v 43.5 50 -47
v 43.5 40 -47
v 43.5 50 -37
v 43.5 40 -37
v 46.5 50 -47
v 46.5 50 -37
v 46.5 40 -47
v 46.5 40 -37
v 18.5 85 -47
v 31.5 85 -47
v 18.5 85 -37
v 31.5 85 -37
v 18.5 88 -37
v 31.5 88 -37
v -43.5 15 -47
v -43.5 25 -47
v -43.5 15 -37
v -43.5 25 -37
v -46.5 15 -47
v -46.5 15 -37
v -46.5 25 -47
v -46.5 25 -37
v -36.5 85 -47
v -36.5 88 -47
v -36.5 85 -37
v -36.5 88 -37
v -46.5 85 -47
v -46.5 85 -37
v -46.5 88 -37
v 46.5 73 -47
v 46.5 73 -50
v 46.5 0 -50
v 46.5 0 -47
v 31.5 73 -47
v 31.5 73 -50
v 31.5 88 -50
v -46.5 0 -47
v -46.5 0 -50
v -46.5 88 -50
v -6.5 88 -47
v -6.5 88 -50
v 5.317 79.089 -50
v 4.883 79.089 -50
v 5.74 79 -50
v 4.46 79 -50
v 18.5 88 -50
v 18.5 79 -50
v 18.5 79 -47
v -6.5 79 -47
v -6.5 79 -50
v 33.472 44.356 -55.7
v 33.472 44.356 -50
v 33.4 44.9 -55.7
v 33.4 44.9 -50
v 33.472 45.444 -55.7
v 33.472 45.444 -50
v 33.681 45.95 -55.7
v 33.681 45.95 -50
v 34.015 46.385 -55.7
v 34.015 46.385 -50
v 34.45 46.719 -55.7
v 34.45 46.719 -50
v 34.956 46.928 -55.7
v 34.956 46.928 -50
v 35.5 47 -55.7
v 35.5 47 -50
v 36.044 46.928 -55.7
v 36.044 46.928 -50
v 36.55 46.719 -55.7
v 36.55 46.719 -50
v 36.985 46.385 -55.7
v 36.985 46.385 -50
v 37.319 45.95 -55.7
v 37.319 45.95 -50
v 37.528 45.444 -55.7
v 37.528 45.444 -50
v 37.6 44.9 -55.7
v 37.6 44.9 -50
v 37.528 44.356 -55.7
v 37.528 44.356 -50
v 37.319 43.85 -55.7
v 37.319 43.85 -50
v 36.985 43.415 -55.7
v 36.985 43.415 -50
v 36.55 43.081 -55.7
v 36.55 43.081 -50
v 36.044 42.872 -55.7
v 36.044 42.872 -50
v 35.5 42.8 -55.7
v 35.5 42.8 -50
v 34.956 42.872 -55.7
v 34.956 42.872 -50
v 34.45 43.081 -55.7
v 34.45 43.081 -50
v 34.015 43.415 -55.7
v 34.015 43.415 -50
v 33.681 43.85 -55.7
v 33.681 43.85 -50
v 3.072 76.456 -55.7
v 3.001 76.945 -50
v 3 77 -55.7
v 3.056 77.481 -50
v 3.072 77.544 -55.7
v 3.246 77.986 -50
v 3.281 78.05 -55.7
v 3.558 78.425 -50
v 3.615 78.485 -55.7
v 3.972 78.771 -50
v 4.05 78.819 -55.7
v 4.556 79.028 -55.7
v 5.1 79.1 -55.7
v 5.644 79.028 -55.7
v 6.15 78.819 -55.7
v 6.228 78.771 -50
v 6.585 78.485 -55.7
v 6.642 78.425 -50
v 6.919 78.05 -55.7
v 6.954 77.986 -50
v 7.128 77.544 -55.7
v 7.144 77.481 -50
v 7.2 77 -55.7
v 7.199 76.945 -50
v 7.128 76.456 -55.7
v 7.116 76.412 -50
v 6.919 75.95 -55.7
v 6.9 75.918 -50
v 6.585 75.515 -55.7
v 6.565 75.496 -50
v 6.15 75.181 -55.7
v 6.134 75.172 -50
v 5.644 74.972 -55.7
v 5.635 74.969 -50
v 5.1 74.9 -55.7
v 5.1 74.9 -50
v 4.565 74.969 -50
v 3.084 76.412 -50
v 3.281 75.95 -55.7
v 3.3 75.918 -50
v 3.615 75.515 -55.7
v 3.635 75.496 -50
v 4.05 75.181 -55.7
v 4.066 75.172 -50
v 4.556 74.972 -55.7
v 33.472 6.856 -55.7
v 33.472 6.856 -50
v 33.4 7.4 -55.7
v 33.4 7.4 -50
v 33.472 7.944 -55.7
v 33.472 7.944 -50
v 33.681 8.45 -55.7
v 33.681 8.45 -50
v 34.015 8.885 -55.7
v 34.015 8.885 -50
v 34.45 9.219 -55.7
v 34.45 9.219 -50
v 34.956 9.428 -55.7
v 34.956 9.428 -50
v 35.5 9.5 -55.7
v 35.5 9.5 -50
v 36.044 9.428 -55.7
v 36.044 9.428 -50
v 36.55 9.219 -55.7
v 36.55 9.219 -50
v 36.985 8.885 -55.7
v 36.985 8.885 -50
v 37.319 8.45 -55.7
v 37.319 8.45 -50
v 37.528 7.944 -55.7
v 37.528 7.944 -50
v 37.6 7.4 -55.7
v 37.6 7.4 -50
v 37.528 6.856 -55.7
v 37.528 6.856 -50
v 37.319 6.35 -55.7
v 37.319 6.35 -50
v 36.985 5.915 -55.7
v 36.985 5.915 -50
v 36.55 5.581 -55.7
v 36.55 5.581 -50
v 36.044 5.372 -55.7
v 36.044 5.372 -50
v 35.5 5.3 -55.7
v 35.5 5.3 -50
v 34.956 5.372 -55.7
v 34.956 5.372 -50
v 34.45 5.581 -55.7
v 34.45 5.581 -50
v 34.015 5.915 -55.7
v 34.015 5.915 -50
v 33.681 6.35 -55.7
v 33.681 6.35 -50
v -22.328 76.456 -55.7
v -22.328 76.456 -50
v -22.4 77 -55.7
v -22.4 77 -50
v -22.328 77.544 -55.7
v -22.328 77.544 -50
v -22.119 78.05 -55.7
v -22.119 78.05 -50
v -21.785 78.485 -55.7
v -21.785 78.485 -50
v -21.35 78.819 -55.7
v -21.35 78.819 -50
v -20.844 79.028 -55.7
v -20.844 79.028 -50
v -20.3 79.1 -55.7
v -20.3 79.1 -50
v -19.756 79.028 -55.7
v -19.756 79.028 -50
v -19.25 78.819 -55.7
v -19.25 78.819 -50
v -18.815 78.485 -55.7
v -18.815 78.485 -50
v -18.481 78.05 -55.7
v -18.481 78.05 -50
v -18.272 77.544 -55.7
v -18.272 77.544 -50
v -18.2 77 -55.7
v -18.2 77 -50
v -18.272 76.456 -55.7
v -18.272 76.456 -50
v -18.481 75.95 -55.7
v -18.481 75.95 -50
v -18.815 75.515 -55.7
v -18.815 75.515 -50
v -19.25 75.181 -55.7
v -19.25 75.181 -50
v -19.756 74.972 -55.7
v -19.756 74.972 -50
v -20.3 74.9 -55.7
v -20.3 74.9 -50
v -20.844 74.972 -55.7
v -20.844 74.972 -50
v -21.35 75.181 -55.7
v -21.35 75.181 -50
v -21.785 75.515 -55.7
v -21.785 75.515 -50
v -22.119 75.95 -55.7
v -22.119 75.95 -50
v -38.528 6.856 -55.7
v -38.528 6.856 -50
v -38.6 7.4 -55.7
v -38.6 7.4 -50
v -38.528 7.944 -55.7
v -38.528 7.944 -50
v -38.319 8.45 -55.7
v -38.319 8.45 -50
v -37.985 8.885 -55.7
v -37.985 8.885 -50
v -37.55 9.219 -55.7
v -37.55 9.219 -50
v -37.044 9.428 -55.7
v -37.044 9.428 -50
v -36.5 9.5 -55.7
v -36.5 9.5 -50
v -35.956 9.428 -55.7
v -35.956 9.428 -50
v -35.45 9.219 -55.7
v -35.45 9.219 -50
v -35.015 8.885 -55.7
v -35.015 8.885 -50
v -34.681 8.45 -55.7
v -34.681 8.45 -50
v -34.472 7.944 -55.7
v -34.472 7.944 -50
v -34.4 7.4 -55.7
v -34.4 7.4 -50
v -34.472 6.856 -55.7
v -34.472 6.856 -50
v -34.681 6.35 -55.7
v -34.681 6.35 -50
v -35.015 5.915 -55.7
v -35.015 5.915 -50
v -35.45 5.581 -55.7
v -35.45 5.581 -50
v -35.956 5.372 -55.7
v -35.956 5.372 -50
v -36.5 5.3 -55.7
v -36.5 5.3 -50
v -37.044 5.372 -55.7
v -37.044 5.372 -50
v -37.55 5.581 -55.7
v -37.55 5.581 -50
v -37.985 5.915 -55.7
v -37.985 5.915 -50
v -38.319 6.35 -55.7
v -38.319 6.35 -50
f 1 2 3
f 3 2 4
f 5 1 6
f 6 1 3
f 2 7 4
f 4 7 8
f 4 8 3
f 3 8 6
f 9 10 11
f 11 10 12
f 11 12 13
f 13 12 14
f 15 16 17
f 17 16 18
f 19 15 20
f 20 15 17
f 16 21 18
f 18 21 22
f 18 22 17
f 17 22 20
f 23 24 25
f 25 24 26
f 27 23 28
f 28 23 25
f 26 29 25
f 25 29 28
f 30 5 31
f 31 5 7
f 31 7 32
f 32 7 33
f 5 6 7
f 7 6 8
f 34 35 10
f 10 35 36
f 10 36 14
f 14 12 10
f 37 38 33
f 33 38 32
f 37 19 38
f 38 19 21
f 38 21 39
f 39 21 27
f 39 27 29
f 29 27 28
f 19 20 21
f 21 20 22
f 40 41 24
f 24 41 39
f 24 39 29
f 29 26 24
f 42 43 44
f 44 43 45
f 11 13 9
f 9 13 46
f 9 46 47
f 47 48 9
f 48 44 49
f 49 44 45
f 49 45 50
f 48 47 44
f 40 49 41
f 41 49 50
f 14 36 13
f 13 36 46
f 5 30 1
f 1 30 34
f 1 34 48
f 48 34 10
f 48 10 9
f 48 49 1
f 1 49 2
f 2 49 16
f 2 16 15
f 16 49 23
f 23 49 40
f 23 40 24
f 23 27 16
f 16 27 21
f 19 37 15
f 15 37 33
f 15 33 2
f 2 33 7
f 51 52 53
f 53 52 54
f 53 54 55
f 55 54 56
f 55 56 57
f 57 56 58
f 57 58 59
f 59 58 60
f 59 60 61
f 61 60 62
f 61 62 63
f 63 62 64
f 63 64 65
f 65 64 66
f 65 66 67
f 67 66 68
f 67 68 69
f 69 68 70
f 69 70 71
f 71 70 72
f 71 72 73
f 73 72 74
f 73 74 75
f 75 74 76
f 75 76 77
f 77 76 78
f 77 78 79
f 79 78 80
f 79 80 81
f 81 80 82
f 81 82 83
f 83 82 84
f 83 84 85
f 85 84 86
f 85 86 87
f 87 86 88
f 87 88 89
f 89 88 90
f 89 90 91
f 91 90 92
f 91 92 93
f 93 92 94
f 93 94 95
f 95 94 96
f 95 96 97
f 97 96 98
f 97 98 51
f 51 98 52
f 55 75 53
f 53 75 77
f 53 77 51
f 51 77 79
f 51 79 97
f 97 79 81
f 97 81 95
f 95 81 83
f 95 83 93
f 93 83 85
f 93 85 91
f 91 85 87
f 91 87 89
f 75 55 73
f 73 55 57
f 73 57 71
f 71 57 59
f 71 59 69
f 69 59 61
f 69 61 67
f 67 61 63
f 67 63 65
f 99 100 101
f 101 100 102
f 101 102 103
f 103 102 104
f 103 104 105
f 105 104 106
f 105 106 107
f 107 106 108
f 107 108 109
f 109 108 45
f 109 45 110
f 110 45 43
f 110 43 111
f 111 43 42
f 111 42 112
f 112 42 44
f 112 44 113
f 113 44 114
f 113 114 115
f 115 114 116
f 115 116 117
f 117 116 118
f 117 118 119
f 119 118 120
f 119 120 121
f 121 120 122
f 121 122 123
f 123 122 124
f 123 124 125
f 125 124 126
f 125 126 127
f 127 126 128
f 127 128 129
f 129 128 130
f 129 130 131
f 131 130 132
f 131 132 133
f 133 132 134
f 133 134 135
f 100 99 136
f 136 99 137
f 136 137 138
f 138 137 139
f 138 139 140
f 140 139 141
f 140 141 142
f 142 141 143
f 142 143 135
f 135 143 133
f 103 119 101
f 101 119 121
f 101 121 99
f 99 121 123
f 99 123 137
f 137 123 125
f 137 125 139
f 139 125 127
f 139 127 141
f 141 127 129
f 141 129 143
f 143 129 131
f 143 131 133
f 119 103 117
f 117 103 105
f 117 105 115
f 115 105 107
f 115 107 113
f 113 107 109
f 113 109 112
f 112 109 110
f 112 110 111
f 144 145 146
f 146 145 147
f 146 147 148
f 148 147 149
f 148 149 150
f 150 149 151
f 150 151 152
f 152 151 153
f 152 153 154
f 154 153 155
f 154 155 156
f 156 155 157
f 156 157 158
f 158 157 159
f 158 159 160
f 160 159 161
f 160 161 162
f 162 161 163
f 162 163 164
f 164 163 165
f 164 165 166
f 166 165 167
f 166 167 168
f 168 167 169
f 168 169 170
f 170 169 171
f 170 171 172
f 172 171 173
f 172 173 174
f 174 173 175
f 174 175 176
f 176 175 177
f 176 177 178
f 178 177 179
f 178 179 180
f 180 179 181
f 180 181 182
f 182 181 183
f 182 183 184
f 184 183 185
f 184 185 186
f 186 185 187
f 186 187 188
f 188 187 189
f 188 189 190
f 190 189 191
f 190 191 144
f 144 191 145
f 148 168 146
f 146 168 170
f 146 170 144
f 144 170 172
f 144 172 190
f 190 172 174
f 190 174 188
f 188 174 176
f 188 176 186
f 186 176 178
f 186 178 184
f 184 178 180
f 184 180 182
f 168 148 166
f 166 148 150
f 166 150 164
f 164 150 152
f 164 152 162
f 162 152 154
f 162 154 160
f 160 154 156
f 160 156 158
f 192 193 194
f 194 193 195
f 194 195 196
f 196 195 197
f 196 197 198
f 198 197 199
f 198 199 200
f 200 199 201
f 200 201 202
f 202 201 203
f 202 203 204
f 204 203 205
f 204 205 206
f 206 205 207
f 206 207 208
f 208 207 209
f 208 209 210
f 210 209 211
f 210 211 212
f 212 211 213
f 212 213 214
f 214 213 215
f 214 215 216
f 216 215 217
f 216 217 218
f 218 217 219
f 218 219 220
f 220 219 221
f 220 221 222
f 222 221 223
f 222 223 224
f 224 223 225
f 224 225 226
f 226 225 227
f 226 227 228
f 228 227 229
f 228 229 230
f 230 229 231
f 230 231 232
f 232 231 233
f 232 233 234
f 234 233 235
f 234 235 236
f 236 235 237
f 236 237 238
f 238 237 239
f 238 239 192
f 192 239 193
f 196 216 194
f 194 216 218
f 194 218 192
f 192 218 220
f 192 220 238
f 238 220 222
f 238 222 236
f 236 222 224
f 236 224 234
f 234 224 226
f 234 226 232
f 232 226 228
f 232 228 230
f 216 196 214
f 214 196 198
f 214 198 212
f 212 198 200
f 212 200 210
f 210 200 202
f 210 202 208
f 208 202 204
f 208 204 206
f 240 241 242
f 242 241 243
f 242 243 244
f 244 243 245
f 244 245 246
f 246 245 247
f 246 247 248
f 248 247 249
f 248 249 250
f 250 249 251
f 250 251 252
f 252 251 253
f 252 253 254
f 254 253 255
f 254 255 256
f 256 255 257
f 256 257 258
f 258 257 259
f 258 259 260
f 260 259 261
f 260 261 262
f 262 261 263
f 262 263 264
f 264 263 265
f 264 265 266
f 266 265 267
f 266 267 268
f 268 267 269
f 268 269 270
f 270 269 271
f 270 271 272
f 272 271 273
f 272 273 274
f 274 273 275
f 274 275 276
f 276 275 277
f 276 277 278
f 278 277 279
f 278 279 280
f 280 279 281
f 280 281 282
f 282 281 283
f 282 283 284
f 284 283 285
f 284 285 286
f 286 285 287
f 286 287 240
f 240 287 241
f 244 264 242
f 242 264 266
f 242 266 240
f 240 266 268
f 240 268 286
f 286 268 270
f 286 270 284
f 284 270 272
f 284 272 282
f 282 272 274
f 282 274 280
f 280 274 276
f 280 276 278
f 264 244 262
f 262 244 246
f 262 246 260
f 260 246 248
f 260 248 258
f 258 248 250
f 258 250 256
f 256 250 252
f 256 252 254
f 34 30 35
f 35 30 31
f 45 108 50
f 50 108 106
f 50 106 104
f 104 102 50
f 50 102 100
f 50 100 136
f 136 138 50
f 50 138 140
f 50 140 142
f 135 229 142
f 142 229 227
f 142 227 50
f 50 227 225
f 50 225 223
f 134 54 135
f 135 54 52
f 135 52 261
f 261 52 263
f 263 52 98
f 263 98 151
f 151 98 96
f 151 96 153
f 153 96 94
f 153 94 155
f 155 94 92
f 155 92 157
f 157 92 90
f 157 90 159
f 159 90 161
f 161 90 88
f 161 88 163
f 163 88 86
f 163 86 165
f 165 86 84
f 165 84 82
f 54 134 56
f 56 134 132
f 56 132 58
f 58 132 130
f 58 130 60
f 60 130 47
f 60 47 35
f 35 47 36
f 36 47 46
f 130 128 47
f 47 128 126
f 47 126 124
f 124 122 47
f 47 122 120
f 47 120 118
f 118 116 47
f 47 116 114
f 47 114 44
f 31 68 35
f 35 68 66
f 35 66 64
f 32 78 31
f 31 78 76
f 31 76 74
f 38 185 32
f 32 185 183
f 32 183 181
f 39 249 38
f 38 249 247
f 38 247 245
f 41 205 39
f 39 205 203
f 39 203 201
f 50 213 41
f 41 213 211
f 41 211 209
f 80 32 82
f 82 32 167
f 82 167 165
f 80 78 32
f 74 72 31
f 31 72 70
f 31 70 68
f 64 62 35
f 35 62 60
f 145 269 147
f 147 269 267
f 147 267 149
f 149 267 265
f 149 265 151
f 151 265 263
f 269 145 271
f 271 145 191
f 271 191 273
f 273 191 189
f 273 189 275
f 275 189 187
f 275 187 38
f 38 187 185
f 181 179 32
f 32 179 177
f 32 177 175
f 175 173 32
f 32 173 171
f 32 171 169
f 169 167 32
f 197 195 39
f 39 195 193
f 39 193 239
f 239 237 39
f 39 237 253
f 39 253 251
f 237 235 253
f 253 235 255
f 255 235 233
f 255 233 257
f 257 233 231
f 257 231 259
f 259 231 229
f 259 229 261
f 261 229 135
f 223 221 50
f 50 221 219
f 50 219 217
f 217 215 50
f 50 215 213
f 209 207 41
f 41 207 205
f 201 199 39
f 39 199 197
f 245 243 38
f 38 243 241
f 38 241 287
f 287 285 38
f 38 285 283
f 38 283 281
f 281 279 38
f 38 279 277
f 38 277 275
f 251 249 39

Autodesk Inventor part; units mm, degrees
ref_plane "YZ Plane" through (0, 0, 0) normal (1, 0, 0) x (0, 1, 0)
ref_plane "XZ Plane" through (0, 0, 0) normal (0, 1, 0) x (-1, 0, 0)
ref_plane "XY Plane" through (0, 0, 0) normal (0, 0, 1) x (1, 0, 0)
sketch "Esquisse1" plane through (0, 0, 0) normal (0, 1, 0) x (-1, 0, 0)
  line L0 (-46.5, 50) -> (46.5, 50)
  line L1 (46.5, 50) -> (46.5, -50)
  line L2 (46.5, -50) -> (-46.5, -50)
  line L3 (-46.5, -50) -> (-46.5, 50)
  line L4 (-46.5, 50) -> (46.5, -50) construction
  line L5 (46.5, 50) -> (-46.5, -50) construction
  point P0 (0, 0)
  dimension "d0" = 100
  dimension "d1" = 93
extrude "Extrusion1" add sketch "Esquisse1" along normal blind 88
sketch "Esquisse2" plane through (0, 0, 0) normal (0, -1, 0) x (1, 0, 0)
  line L0 (-43.5, 47) -> (43.5, 47)
  line L1 (43.5, 47) -> (43.5, -47)
  line L2 (43.5, -47) -> (-43.5, -47)
  line L3 (-43.5, -47) -> (-43.5, 47)
  line L4 (-43.5, 47) -> (43.5, -47) construction
  line L5 (43.5, 47) -> (-43.5, -47) construction
  line L6 (46.5, 50) -> (46.5, -50) projected
  line L7 (-46.5, 50) -> (46.5, 50) projected
  point P0 (0, 0)
  dimension "d4" = 3
  dimension "d5" = 3
extrude "Extrusion2" cut sketch "Esquisse2" against normal blind 85
sketch "Esquisse3" plane through (-46.5, 0, 50) normal (0, 0, 1) x (1, 0, 0)
  line L0 (0, 88) -> (93, 88) projected
  line L1 (93, 88) -> (78, 88)
  line L2 (78, 88) -> (78, 73)
  line L3 (78, 73) -> (93, 73)
  line L4 (93, 73) -> (93, 88)
  point P0 (46.5, 0)
  dimension "d8" = 15
  dimension "d9" = 15
extrude "Extrusion3" cut sketch "Esquisse3" against normal up to surface (100 mm away)
sketch "Esquisse4" plane through (-46.5, 0, 50) normal (0, 0, 1) x (1, 0, 0)
  circle A0 centre (73, 68) radius 1.75
  circle A1 centre (33, 68) radius 1.75
  circle A2 centre (73, 30) radius 1.75
  circle A3 centre (33, 30) radius 1.75
  line L0 (93, 0) -> (93, 73) projected
  line L1 (0, 88) -> (78, 88) projected
  point P0 (46.5, 0)
  dimension "d12" = 40
  dimension "d13" = 3.5
  dimension "d14" = 3.5
  dimension "d15" = 3.5
  dimension "d16" = 3.5
  dimension "d17" = 40
  dimension "d18" = 0
  dimension "d19" = 0
  dimension "d20" = 38
  dimension "d21" = 20
  dimension "d22" = 20
  dimension "d23" = 0
extrude "Extrusion4" cut sketch "Esquisse4" against normal up to surface (3 mm away)
sketch "Esquisse5" plane through (46.5, 0, -50) normal (0, 0, -1) x (-1, 0, 0)
  circle A0 centre (66.8, 77) radius 2.1
  circle A1 centre (41.4, 77) radius 2.1
  circle A2 centre (11, 44.9) radius 2.1
  circle A3 centre (11, 7.4) radius 2.1
  line L0 (0, 0) -> (0, 73) projected
  line L1 (15, 88) -> (93, 88) projected
  line L2 (15, 88) -> (15, 73) projected
  line L3 (15, 73) -> (0, 73) projected
  circle A4 centre (83, 7.4) radius 2.1
  line L4 (93, 0) -> (93, 88) projected
  point P0 (46.5, 0)
  dimension "d26" = 4.2
  dimension "d27" = 4.2
  dimension "d28" = 4.2
  dimension "d29" = 4.2
  dimension "d30" = 11
  dimension "d31" = 0
  dimension "d32" = 11
  dimension "d33" = 0
  dimension "d34" = 37.5
  dimension "d35" = 25.4
  dimension "d36" = 26.4
  dimension "d37" = 28.1
  dimension "d38" = 4.2
  dimension "d39" = 0
  dimension "d40" = 10
extrude "Extrusion5" add sketch "Esquisse5" along normal blind 5.7
sketch "Esquisse6" plane through (-36.5, 7.4, -55.7) normal (0, 0, -1) x (-1, 0, 0)
  point P0 (-36.5, -7.4)
sketch "Esquisse7" plane through (-46.5, 0, 50) normal (0, 0, 1) x (1, 0, 0)
  line L0 (0, 88) -> (78, 88) projected
  line L1 (65, 88) -> (40, 88)
  line L2 (40, 88) -> (40, 79)
  line L3 (40, 79) -> (65, 79)
  line L4 (65, 79) -> (65, 88)
  line L5 (78, 73) -> (78, 88) projected
  point P0 (46.5, 0)
  point P1 (78, 80.5)
  point P2 (65, 83.5)
  dimension "d43" = 25
  dimension "d44" = 13
  dimension "d45" = 9
extrude "Extrusion6" cut sketch "Esquisse7" against normal up to surface (100 mm away)
sketch "Esquisse8" plane through (-46.5, 0, 50) normal (0, 0, 1) x (1, 0, 0)
  line L0 (0, 0) -> (0, 88) projected
  line L1 (0, 0) -> (94.9117, 0)
  line L2 (94.9117, 0) -> (94.9117, 90.3204)
  line L3 (94.9117, 90.3204) -> (0, 90.3204)
  line L4 (0, 90.3204) -> (0, 0)
  point P0 (46.5, 0)
extrude "Extrusion7" cut sketch "Esquisse8" against normal up to surface (97 mm away)
sketch "Esquisse9" plane through (-46.5, 0, -47) normal (0, 0, 1) x (1, 0, 0)
  line L0 (78, 88) -> (65, 88) projected
  line L1 (78, 88) -> (78, 73) projected
  line L2 (65, 88) -> (78, 88)
  line L3 (78, 88) -> (78, 85)
  line L4 (78, 85) -> (65, 85)
  line L5 (65, 85) -> (65, 88)
  line L6 (0, 88) -> (10, 88)
  line L7 (10, 88) -> (10, 85)
  line L8 (10, 85) -> (0, 85)
  line L9 (0, 85) -> (0, 88)
  line L10 (0, 0) -> (0, 88) projected
  line L11 (0, 15) -> (3, 15)
  line L12 (3, 15) -> (3, 25)
  line L13 (3, 25) -> (0, 25)
  line L14 (0, 25) -> (0, 15)
  line L15 (93, 0) -> (0, 0) projected
  line L16 (93, 73) -> (93, 0) projected
  line L17 (93, 50) -> (90, 50)
  line L18 (90, 50) -> (90, 40)
  line L19 (90, 40) -> (93, 40)
  line L20 (93, 40) -> (93, 50)
  point P0 (46.5, 0)
  point P1 (0, 25)
  dimension "d50" = 3
  dimension "d51" = 3
  dimension "d52" = 10
  dimension "d53" = 15
  dimension "d54" = 10
  dimension "d55" = 3
  dimension "d56" = 40
  dimension "d57" = 10
  dimension "d58" = 3
extrude "Extrusion8" add sketch "Esquisse9" along normal blind 10
properties part number "support_imu_Impression 3D"
